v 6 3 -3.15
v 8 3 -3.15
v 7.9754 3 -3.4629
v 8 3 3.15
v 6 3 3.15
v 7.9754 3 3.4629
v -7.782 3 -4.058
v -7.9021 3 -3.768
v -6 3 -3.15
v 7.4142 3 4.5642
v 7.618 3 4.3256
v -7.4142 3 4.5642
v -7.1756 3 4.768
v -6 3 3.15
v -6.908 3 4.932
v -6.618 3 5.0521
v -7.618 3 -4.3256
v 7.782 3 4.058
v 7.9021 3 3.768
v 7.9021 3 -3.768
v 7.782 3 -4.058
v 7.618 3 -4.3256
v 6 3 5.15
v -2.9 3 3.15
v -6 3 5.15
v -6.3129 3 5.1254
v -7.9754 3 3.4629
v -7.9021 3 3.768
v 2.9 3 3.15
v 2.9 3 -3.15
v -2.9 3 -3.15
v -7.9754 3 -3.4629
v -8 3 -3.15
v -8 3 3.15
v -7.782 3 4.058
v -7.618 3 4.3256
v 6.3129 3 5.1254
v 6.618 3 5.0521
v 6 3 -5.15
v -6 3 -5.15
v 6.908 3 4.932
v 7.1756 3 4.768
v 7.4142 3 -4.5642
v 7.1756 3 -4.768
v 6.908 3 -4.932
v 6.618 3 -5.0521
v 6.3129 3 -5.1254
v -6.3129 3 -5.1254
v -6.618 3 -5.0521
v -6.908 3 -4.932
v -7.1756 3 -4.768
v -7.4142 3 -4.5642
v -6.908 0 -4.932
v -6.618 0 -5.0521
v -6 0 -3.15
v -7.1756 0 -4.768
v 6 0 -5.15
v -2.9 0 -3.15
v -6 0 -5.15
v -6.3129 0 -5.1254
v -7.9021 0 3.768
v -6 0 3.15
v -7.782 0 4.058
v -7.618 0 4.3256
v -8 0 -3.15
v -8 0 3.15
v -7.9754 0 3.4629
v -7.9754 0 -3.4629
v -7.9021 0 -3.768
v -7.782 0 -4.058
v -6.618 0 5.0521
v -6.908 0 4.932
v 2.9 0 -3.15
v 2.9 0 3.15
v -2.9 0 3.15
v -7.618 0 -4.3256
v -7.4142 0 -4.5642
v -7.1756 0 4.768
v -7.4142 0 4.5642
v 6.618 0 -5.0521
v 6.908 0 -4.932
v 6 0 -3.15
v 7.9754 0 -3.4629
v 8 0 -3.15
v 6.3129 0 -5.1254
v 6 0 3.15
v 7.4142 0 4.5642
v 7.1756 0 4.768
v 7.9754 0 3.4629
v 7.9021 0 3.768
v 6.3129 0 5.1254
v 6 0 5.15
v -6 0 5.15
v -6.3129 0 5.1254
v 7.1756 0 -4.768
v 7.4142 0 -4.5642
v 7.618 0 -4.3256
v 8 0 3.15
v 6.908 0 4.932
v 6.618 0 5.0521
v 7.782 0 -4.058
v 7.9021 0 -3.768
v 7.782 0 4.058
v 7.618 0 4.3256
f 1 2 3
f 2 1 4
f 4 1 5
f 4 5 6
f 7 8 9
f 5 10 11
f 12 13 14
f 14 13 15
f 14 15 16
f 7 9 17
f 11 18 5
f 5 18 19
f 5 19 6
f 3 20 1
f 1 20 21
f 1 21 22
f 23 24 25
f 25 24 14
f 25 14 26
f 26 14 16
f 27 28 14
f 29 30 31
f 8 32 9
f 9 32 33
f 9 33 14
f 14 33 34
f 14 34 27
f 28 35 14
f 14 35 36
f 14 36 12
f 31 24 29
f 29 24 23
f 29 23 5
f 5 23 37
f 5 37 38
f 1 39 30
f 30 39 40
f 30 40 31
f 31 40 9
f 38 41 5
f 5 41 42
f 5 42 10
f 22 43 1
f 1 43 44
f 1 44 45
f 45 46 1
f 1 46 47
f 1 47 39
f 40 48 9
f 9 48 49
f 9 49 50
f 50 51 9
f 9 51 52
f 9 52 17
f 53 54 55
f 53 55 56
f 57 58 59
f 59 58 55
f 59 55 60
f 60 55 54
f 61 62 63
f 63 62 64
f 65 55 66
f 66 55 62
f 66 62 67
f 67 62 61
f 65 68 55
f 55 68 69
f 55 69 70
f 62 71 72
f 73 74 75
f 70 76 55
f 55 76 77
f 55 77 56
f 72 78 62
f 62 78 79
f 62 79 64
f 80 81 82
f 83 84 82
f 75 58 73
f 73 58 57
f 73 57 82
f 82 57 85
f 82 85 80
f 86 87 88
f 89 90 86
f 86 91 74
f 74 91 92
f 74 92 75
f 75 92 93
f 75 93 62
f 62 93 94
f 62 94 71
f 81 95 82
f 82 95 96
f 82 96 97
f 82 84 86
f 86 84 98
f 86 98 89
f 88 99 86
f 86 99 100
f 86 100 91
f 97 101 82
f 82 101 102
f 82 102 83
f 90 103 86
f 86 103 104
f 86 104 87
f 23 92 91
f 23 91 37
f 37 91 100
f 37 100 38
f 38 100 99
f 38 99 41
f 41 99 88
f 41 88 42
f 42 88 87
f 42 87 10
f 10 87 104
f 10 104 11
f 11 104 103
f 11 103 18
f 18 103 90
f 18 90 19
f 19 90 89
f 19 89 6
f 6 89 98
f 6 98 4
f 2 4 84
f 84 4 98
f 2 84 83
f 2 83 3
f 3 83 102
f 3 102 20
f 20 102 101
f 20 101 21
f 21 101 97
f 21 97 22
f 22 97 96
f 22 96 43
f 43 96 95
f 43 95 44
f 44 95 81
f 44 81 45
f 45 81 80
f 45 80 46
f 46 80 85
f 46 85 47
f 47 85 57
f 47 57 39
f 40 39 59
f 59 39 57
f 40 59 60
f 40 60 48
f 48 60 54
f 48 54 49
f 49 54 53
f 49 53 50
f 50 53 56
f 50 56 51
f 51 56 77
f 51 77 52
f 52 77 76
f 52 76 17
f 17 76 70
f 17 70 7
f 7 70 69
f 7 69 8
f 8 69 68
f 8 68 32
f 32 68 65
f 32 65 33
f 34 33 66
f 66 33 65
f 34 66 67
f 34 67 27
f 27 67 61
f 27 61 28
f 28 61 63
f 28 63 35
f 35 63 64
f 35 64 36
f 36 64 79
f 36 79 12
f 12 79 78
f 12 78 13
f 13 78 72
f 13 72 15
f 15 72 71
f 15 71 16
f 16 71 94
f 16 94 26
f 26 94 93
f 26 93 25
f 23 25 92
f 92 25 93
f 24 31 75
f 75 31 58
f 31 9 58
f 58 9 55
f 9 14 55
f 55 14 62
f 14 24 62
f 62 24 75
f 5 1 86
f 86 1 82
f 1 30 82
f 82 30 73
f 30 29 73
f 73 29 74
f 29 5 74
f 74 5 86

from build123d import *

# Parameters (mm, degrees)
SKETCH1_W           = 3.1
SKETCH1_H           = 6.3
BOSS_EXTRUDE1_DEPTH = 3


with BuildPart() as part:
    # Sketch1 → Boss-Extrude1 (new body)
    with BuildSketch(Plane(origin=(0, 0, 0), x_dir=(1, 0, 0), z_dir=(0, 1, 0))):
        with BuildLine():
            Line((-8, 3.15), (-8, -3.15))
            ThreePointArc((-8, -3.15), (-7.414213562, -4.564213562), (-6, -5.15))
            Line((-6, -5.15), (-2.9, -5.15))
            Line((-2.9, -5.15), (6, -5.15))
            ThreePointArc((6, -5.15), (7.414213562, -4.564213562), (8, -3.15))
            Line((8, -3.15), (8, 3.15))
            ThreePointArc((8, 3.15), (7.414213562, 4.564213562), (6, 5.15))
            Line((6, 5.15), (-2.9, 5.15))
            Line((-2.9, 5.15), (-6, 5.15))
            ThreePointArc((-6, 5.15), (-7.414213562, 4.564213562), (-8, 3.15))
        make_face()
        with Locations((-4.45, 0)):
            Rectangle(SKETCH1_W, SKETCH1_H, mode=Mode.SUBTRACT)
        with Locations((4.45, 0)):
            Rectangle(SKETCH1_W, SKETCH1_H, mode=Mode.SUBTRACT)
    extrude(amount=BOSS_EXTRUDE1_DEPTH)


solid = part.part
